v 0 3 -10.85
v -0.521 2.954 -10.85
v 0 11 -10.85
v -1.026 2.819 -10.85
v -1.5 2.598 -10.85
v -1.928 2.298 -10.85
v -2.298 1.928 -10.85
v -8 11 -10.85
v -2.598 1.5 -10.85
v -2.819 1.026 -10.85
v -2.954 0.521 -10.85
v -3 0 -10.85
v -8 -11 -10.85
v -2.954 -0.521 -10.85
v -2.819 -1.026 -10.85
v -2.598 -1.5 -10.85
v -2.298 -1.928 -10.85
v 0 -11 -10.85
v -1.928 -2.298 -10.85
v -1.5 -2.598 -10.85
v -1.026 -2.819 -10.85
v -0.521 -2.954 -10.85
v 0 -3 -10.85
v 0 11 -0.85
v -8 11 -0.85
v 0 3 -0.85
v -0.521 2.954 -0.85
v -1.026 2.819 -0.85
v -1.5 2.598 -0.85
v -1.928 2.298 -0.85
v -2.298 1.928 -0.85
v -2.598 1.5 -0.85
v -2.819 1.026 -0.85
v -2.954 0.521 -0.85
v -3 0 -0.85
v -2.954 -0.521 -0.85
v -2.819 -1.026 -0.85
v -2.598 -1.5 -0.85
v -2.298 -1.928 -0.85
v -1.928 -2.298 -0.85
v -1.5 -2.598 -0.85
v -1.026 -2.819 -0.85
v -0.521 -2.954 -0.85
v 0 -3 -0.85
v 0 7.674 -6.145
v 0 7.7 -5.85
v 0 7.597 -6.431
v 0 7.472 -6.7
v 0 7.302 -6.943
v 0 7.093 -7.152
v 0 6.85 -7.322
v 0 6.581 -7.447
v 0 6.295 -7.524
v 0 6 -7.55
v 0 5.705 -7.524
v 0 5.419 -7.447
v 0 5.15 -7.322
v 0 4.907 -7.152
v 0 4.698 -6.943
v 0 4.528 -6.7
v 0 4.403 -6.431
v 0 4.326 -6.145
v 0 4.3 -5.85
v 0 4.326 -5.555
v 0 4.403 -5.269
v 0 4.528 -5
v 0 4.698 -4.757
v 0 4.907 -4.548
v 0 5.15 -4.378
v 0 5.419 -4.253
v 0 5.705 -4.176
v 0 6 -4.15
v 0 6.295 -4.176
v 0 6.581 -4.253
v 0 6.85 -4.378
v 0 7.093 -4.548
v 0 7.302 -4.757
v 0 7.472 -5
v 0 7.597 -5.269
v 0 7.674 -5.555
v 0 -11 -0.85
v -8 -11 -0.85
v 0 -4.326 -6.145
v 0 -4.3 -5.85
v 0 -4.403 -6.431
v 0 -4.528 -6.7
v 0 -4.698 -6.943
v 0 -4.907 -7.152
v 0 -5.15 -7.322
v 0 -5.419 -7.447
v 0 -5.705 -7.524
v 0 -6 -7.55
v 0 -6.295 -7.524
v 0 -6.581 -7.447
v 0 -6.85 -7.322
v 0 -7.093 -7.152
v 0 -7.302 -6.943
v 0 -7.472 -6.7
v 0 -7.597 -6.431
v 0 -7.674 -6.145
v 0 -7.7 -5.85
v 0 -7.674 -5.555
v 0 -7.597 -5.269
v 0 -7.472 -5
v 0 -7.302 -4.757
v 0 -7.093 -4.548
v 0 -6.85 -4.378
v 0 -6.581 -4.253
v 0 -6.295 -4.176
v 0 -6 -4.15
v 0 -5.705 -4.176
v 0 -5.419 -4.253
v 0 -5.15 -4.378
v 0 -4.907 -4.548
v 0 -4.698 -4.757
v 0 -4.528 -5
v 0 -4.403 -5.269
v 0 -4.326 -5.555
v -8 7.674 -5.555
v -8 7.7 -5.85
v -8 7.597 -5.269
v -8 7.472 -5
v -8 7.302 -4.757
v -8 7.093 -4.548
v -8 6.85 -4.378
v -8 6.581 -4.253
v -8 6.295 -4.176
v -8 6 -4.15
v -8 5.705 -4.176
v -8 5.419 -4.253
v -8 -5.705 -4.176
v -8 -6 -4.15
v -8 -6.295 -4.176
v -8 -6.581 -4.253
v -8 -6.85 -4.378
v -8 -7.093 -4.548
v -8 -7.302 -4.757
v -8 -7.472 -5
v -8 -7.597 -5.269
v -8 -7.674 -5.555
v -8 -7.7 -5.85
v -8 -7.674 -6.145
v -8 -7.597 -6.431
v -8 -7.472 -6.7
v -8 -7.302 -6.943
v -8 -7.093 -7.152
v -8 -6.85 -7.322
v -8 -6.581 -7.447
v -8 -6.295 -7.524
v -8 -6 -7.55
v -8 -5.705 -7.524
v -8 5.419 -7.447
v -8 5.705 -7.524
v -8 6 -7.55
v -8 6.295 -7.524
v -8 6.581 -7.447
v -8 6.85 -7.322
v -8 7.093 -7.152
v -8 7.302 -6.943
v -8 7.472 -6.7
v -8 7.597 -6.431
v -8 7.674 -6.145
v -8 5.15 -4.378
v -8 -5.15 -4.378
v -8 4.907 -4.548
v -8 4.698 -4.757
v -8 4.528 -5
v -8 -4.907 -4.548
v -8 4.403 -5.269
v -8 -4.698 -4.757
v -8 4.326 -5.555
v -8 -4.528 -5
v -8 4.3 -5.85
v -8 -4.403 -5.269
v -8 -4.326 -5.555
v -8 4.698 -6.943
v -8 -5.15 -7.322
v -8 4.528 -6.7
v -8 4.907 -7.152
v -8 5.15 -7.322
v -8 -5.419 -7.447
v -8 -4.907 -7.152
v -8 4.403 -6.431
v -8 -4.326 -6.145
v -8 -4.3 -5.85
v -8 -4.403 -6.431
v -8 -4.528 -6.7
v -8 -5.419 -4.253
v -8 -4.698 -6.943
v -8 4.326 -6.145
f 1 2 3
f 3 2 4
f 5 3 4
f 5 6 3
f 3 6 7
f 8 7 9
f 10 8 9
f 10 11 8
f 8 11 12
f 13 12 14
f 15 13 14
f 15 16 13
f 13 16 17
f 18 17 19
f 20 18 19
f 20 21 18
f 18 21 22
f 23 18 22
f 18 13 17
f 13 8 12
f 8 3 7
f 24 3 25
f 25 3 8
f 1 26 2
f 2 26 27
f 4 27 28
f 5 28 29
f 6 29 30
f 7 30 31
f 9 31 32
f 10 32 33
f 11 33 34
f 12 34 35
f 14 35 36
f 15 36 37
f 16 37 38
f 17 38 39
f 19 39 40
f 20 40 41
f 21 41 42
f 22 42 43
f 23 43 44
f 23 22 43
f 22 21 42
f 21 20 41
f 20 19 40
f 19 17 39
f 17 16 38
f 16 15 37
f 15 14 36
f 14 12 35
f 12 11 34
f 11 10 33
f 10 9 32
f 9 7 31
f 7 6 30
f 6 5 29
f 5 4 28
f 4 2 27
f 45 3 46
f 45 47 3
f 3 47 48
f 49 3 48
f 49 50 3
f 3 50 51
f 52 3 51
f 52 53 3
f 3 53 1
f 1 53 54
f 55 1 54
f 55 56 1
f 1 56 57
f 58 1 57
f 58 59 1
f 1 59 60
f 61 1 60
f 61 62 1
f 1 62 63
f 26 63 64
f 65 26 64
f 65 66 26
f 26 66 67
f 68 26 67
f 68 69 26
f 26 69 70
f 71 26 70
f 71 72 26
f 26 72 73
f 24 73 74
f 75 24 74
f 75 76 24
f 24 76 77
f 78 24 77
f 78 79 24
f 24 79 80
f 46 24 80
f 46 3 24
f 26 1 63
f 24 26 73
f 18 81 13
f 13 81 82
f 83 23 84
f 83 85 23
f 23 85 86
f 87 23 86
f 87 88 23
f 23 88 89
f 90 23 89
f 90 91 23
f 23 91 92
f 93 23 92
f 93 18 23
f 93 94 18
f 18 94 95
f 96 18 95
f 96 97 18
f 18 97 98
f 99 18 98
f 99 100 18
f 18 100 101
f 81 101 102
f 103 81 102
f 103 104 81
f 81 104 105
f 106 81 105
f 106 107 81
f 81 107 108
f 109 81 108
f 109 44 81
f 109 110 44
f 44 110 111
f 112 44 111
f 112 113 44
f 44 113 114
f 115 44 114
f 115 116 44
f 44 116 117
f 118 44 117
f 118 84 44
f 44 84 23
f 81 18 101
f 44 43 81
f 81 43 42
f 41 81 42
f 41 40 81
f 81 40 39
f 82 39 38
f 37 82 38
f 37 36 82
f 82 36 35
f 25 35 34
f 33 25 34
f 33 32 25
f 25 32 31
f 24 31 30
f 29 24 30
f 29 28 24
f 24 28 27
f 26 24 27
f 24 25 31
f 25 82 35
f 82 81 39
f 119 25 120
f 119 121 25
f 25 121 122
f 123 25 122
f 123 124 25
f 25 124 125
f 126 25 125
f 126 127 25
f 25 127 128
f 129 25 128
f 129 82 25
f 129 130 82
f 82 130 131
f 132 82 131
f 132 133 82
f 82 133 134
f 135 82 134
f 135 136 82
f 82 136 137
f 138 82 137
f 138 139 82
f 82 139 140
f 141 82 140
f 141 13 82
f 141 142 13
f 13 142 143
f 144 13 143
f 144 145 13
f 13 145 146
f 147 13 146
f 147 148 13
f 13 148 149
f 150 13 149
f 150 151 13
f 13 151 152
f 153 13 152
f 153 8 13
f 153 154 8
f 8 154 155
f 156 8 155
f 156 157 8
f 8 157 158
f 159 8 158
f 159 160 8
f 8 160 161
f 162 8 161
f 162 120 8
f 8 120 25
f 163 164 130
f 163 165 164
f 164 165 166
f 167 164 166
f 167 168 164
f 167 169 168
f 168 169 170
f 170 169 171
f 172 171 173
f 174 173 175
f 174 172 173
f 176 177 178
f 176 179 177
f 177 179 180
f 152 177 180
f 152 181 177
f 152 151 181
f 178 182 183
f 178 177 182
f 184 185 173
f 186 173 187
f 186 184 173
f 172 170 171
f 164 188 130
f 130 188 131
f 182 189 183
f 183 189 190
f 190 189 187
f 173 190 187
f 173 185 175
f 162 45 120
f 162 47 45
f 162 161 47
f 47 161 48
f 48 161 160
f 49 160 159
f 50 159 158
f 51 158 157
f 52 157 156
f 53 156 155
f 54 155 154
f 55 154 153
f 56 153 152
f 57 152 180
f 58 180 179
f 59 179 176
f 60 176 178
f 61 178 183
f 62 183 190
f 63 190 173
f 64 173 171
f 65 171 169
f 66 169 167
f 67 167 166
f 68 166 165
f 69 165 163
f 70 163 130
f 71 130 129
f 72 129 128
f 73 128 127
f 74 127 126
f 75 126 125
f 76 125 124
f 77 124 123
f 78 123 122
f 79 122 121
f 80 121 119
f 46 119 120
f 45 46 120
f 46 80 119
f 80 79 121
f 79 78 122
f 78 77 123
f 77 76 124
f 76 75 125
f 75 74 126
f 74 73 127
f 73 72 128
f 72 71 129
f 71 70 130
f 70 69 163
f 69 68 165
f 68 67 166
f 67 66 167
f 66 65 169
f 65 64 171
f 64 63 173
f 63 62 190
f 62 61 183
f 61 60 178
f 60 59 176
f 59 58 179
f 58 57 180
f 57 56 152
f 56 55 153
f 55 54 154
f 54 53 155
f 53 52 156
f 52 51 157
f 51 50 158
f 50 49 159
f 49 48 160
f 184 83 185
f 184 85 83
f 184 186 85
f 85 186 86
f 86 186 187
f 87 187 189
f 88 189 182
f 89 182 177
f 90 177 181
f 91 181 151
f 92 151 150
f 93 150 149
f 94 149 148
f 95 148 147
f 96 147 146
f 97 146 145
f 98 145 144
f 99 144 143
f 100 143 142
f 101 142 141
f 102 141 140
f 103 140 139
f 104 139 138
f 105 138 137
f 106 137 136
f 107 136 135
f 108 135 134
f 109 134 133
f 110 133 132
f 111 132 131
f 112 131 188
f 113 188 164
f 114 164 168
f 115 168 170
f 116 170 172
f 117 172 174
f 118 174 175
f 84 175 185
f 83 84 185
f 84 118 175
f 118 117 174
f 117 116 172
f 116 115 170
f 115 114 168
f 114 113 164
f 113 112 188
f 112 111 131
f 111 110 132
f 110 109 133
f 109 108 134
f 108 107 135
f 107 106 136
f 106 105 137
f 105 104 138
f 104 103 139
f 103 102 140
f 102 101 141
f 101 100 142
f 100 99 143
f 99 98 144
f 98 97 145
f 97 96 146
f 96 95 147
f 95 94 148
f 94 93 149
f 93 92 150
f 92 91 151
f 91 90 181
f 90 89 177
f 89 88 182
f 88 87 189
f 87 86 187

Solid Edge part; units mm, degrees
sketch "Sketch1" plane through (0, 0, 0) normal (1, 0, 0) x (0, 1, 0)
  circle A0 centre (-6, -5.85) radius 1.7
  line L0 (11, -10.85) -> (-11, -10.85)
  line L1 (-11, -10.85) -> (-11, -0.85)
  line L2 (-11, -0.85) -> (11, -0.85)
  line L3 (11, -0.85) -> (11, -10.85)
  circle A1 centre (6, -5.85) radius 1.7
  dimension "D1" = 10
  dimension "D2" = 22
extrude "Protrusion1" add sketch "Sketch1" against normal blind 8
sketch "Sketch2" plane through (-5, 0, -10.85) normal (0, 0, -1) x (0, -1, 0)
  circle A0 centre (0, -5) radius 3
extrude "Cutout1" cut sketch "Sketch2" against normal through all
properties material "ABS Plastic, high impact"
